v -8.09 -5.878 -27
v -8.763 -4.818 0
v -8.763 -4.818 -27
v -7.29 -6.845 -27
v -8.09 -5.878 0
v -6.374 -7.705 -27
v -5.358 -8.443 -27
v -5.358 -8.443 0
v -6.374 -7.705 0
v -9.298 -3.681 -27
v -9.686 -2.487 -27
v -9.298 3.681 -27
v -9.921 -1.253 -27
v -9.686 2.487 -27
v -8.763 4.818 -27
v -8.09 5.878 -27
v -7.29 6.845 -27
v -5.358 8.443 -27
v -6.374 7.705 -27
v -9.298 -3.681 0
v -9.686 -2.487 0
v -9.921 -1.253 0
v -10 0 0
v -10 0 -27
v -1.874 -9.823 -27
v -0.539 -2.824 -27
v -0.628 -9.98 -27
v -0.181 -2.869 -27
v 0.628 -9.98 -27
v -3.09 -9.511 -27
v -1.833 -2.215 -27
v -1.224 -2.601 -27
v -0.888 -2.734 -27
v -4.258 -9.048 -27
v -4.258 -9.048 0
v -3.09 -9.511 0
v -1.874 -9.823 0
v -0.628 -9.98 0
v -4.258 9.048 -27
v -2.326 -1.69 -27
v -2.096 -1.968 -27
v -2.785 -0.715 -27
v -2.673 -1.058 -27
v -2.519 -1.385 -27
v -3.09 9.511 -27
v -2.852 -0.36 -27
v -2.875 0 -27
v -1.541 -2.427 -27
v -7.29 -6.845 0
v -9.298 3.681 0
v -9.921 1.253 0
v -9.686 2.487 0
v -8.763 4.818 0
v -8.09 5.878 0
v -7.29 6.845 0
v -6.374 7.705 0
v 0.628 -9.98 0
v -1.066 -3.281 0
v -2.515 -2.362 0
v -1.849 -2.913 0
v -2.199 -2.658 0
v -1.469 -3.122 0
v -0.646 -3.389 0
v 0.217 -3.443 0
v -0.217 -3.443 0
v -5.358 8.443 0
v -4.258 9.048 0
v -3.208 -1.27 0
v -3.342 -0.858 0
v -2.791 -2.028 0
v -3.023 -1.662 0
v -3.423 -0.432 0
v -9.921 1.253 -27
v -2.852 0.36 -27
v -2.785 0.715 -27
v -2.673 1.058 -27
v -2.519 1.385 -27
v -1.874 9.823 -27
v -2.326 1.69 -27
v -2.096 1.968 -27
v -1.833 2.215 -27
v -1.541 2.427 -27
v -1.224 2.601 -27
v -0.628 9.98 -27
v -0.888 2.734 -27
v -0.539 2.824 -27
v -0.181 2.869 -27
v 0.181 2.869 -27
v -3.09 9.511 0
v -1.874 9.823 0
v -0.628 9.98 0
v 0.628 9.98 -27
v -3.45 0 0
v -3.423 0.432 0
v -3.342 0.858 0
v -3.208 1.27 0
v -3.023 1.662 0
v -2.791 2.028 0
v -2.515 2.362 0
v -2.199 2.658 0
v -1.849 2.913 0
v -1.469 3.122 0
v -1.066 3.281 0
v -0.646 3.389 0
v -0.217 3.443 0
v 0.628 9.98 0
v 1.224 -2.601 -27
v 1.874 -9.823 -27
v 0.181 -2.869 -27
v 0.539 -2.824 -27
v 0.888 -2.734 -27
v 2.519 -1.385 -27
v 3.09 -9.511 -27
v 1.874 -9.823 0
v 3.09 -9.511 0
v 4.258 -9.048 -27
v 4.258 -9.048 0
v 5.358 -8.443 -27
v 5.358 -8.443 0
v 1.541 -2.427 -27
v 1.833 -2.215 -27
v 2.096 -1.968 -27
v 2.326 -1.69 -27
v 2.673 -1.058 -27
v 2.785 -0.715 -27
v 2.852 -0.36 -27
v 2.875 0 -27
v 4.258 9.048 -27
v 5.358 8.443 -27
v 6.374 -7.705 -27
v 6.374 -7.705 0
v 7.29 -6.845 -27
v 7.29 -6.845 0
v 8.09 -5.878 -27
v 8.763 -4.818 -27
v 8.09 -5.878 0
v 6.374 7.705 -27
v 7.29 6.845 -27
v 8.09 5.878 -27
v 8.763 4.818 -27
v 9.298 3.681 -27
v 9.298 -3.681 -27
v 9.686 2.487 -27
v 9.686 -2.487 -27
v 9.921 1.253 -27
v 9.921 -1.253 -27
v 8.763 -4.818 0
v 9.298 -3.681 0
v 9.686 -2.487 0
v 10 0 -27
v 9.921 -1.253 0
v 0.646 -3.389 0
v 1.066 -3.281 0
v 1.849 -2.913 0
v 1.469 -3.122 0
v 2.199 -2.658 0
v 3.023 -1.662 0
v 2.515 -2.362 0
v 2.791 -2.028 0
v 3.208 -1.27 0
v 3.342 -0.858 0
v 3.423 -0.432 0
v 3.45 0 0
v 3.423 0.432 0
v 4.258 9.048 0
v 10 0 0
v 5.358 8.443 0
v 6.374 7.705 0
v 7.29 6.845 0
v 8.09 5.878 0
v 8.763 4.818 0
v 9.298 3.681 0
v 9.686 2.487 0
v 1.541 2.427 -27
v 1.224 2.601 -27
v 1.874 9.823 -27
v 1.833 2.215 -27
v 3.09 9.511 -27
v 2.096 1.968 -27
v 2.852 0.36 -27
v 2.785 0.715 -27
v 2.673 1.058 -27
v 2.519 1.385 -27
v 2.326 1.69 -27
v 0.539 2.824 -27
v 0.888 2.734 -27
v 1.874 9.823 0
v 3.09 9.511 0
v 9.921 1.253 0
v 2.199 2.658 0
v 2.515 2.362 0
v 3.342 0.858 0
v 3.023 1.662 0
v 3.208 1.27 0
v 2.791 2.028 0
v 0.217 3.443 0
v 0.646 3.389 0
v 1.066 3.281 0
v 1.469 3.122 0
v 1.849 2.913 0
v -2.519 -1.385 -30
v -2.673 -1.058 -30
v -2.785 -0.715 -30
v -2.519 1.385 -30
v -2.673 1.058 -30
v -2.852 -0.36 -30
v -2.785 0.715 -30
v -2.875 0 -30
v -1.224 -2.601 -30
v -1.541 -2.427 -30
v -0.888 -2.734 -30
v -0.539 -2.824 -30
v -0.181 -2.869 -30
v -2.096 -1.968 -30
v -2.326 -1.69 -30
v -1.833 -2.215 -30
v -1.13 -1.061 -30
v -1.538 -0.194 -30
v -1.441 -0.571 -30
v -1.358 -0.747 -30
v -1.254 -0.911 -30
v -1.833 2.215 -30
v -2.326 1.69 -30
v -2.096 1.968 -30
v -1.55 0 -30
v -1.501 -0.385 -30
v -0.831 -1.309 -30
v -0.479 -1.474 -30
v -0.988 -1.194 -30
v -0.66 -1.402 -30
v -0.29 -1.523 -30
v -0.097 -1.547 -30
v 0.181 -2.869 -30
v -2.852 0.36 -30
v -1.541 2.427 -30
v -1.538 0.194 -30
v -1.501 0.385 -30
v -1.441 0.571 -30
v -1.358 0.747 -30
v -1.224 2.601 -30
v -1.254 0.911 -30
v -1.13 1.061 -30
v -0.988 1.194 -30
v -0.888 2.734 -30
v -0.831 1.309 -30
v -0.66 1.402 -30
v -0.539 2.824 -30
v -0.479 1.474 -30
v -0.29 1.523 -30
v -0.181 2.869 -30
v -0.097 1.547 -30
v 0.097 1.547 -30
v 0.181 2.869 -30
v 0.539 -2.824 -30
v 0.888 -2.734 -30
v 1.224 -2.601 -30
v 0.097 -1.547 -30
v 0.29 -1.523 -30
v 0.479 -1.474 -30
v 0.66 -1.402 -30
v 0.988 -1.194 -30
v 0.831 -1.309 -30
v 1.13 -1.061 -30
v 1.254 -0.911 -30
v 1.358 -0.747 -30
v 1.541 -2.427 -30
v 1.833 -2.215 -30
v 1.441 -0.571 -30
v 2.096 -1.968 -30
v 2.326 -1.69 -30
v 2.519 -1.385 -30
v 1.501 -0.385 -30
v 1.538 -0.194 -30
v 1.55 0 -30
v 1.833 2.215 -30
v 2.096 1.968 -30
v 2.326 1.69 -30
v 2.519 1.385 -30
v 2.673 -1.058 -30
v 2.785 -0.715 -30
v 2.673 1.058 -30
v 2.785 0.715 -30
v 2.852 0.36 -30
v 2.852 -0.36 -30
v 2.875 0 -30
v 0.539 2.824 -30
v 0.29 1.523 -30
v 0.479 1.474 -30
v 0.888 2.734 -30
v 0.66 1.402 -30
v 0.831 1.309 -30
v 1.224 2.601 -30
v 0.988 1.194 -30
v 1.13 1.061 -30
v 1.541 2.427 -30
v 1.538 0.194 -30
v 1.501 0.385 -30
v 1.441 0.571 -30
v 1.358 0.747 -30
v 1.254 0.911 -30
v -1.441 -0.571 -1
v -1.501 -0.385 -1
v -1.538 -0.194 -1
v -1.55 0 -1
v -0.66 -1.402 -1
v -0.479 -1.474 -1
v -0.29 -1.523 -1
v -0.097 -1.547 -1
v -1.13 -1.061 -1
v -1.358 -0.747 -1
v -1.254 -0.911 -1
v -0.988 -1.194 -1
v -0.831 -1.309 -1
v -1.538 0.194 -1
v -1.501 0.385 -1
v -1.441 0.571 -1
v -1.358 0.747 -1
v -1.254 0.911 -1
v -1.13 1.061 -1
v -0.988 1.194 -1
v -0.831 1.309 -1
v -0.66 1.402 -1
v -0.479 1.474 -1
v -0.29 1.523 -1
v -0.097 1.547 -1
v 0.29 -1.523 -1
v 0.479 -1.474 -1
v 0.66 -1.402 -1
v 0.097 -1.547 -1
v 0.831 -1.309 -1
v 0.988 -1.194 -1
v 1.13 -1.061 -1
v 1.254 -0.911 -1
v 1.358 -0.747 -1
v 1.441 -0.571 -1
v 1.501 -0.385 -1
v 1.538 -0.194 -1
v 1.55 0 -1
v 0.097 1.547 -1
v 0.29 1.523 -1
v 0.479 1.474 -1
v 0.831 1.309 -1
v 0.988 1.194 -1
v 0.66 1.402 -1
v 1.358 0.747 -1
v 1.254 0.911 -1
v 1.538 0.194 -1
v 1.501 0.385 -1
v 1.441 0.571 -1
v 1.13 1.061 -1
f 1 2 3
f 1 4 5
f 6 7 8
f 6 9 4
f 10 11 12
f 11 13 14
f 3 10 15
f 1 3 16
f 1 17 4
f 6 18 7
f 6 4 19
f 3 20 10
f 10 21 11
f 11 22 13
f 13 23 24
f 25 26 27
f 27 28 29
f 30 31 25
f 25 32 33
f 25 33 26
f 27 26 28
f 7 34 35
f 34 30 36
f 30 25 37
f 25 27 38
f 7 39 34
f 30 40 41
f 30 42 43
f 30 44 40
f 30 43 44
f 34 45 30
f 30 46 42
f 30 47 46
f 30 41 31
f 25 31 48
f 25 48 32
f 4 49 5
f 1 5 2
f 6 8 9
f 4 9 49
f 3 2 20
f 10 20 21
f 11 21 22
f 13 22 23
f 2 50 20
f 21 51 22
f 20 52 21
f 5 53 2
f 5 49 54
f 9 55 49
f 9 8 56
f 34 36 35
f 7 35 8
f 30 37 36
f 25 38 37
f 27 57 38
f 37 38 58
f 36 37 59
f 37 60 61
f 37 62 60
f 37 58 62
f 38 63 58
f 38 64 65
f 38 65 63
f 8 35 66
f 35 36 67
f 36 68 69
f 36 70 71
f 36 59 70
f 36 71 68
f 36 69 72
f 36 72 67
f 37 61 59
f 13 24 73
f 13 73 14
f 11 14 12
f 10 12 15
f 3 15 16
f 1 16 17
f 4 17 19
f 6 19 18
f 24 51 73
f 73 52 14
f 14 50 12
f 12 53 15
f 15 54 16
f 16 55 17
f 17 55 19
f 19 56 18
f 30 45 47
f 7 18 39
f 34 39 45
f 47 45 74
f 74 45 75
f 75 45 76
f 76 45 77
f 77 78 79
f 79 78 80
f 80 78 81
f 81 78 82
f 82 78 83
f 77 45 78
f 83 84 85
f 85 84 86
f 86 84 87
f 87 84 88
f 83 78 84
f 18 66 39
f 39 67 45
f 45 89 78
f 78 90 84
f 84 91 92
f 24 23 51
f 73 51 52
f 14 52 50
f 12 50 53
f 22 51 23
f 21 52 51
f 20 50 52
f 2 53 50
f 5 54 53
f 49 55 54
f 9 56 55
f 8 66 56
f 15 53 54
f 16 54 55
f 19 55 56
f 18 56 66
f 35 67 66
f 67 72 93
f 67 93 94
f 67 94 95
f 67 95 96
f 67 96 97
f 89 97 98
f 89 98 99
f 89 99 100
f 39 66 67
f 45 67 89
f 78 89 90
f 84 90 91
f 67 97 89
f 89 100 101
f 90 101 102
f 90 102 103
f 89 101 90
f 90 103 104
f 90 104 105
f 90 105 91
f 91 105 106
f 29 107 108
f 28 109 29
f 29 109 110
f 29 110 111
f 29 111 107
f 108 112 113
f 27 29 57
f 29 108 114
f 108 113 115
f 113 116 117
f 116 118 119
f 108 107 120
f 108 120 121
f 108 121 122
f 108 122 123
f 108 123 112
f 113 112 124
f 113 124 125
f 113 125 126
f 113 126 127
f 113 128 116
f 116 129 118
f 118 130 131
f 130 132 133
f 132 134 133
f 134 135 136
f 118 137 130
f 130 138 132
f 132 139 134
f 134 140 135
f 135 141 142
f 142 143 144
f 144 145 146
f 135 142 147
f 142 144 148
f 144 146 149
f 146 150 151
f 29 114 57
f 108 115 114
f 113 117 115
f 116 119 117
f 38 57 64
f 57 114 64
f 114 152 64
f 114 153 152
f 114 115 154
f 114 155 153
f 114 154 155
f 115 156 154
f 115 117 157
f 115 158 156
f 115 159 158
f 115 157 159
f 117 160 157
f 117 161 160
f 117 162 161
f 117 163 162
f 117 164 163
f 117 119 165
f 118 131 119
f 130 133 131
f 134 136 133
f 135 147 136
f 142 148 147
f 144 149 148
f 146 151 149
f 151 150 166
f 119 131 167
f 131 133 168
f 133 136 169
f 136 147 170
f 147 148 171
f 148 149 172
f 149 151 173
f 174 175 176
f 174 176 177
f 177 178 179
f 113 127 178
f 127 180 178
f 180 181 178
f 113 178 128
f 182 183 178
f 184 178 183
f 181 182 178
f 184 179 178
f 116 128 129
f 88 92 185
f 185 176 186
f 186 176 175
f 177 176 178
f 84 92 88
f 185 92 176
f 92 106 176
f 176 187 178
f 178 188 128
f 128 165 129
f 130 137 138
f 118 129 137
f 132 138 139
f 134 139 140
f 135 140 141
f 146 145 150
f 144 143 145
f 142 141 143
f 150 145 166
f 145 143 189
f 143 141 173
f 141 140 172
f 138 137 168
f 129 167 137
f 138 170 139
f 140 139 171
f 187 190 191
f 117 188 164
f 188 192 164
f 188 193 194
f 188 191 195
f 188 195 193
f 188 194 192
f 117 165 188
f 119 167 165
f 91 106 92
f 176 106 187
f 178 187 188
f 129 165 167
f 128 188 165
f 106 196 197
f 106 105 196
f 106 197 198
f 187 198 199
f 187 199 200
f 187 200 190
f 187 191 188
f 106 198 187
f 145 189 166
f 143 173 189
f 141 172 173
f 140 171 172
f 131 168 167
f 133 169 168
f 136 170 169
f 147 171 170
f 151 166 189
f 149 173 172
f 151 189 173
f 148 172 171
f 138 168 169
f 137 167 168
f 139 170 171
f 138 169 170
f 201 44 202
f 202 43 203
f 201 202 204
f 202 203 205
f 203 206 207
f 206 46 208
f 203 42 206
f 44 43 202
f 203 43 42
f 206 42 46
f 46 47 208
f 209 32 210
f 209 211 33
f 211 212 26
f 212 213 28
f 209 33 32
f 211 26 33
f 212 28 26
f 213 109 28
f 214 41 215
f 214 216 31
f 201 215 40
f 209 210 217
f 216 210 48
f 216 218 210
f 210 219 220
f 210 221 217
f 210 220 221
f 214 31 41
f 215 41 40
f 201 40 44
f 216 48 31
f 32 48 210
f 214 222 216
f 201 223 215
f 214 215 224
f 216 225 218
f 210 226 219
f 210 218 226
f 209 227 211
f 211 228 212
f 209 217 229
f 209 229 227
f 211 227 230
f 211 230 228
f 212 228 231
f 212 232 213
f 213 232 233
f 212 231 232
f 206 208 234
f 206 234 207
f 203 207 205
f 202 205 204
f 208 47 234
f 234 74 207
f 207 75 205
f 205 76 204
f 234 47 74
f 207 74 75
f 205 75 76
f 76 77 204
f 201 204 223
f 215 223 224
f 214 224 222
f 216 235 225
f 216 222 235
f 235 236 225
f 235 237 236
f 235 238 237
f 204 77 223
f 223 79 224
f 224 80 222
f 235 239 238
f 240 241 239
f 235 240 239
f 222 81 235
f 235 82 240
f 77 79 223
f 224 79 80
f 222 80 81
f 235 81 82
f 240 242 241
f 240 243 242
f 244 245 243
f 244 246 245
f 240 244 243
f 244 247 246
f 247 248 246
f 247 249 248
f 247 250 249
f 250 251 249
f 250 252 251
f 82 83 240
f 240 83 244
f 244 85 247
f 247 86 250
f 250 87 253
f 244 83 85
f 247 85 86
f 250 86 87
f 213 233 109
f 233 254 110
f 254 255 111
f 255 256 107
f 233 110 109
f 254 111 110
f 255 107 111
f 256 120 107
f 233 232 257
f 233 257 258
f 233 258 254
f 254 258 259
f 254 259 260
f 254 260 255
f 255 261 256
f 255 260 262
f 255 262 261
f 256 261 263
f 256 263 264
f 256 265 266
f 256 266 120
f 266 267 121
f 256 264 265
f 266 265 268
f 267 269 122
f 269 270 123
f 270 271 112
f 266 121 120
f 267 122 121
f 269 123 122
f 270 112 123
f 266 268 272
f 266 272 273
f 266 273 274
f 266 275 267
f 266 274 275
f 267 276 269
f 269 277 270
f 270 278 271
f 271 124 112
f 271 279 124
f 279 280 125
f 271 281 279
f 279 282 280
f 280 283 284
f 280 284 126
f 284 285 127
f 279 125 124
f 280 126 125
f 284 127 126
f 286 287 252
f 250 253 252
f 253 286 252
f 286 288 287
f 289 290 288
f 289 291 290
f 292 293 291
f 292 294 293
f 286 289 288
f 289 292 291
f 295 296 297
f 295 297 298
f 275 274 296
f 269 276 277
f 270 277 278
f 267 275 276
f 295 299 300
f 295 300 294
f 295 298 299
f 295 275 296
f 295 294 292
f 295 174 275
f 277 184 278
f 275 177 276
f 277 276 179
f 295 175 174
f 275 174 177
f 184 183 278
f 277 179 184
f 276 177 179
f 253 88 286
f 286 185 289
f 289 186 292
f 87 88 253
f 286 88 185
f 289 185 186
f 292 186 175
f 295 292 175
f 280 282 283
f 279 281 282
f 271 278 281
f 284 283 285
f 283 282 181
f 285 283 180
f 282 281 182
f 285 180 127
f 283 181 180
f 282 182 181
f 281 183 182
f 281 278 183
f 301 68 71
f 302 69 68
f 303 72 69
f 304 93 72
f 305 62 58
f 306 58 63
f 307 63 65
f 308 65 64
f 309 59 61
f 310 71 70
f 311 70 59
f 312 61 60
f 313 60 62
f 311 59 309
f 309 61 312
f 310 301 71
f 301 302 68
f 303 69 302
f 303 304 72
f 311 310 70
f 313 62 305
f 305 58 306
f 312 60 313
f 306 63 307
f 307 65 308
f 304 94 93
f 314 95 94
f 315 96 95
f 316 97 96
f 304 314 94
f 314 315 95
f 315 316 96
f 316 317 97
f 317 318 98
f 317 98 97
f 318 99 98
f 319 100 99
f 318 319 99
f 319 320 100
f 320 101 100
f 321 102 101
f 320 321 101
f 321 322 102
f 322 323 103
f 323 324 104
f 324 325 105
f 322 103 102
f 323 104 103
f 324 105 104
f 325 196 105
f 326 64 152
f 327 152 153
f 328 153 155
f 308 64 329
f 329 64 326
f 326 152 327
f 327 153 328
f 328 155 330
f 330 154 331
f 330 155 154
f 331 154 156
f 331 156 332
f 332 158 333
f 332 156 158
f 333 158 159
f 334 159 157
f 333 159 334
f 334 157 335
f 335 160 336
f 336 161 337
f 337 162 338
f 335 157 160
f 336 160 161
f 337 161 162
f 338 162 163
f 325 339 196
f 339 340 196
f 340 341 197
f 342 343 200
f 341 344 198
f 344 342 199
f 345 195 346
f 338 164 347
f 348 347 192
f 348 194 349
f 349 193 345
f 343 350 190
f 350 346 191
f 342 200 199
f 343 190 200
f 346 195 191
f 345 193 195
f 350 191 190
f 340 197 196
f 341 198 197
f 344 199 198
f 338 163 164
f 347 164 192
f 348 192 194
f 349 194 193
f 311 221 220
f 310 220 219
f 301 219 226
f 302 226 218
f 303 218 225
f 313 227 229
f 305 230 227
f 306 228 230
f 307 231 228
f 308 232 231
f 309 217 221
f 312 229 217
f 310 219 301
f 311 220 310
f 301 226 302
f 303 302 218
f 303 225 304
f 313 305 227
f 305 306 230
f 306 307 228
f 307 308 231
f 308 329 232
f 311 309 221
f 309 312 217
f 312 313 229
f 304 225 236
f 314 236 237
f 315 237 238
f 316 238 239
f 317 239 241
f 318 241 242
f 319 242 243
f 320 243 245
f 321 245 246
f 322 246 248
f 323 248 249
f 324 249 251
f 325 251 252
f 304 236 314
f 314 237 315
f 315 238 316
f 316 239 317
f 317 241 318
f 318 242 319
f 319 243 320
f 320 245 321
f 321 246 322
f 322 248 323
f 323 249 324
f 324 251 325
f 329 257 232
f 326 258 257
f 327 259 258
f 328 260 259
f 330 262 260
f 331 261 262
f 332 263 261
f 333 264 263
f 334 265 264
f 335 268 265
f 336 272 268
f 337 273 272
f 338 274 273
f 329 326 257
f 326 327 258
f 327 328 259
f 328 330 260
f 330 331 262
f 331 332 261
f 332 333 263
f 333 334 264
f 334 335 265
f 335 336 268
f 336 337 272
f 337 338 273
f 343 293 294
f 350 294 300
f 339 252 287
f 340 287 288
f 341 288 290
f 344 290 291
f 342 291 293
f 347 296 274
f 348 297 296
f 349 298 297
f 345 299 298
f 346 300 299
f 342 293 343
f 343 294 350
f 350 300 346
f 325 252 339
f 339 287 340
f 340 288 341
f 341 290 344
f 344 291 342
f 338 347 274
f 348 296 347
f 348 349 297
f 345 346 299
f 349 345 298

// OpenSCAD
$fn = 50;

difference() {
	union() {
		translate(v = [0, 0, -27.0]) {
			cylinder(h = 27, r = 10.0);
		}
		#translate(v = [0, 0, -30.0]) {
			cylinder(h = 30, r = 2.875);
		}
	}
	union() {
		translate(v = [0, 0, 0]) {
			rotate(a = [0, 0, 0]) {
				difference() {
					union() {
						translate(v = [0, 0, -30.0]) {
							cylinder(h = 30, r = 1.25);
						}
						translate(v = [0, 0, -1.0]) {
							cylinder(h = 1.0, r1 = 1.55, r2 = 3.45);
						}
						translate(v = [0, 0, -30.0]) {
							cylinder(h = 30, r = 1.55);
						}
						translate(v = [0, 0, -30.0]) {
							cylinder(h = 30, r = 1.25);
						}
					}
					union();
				}
			}
		}
	}
}
